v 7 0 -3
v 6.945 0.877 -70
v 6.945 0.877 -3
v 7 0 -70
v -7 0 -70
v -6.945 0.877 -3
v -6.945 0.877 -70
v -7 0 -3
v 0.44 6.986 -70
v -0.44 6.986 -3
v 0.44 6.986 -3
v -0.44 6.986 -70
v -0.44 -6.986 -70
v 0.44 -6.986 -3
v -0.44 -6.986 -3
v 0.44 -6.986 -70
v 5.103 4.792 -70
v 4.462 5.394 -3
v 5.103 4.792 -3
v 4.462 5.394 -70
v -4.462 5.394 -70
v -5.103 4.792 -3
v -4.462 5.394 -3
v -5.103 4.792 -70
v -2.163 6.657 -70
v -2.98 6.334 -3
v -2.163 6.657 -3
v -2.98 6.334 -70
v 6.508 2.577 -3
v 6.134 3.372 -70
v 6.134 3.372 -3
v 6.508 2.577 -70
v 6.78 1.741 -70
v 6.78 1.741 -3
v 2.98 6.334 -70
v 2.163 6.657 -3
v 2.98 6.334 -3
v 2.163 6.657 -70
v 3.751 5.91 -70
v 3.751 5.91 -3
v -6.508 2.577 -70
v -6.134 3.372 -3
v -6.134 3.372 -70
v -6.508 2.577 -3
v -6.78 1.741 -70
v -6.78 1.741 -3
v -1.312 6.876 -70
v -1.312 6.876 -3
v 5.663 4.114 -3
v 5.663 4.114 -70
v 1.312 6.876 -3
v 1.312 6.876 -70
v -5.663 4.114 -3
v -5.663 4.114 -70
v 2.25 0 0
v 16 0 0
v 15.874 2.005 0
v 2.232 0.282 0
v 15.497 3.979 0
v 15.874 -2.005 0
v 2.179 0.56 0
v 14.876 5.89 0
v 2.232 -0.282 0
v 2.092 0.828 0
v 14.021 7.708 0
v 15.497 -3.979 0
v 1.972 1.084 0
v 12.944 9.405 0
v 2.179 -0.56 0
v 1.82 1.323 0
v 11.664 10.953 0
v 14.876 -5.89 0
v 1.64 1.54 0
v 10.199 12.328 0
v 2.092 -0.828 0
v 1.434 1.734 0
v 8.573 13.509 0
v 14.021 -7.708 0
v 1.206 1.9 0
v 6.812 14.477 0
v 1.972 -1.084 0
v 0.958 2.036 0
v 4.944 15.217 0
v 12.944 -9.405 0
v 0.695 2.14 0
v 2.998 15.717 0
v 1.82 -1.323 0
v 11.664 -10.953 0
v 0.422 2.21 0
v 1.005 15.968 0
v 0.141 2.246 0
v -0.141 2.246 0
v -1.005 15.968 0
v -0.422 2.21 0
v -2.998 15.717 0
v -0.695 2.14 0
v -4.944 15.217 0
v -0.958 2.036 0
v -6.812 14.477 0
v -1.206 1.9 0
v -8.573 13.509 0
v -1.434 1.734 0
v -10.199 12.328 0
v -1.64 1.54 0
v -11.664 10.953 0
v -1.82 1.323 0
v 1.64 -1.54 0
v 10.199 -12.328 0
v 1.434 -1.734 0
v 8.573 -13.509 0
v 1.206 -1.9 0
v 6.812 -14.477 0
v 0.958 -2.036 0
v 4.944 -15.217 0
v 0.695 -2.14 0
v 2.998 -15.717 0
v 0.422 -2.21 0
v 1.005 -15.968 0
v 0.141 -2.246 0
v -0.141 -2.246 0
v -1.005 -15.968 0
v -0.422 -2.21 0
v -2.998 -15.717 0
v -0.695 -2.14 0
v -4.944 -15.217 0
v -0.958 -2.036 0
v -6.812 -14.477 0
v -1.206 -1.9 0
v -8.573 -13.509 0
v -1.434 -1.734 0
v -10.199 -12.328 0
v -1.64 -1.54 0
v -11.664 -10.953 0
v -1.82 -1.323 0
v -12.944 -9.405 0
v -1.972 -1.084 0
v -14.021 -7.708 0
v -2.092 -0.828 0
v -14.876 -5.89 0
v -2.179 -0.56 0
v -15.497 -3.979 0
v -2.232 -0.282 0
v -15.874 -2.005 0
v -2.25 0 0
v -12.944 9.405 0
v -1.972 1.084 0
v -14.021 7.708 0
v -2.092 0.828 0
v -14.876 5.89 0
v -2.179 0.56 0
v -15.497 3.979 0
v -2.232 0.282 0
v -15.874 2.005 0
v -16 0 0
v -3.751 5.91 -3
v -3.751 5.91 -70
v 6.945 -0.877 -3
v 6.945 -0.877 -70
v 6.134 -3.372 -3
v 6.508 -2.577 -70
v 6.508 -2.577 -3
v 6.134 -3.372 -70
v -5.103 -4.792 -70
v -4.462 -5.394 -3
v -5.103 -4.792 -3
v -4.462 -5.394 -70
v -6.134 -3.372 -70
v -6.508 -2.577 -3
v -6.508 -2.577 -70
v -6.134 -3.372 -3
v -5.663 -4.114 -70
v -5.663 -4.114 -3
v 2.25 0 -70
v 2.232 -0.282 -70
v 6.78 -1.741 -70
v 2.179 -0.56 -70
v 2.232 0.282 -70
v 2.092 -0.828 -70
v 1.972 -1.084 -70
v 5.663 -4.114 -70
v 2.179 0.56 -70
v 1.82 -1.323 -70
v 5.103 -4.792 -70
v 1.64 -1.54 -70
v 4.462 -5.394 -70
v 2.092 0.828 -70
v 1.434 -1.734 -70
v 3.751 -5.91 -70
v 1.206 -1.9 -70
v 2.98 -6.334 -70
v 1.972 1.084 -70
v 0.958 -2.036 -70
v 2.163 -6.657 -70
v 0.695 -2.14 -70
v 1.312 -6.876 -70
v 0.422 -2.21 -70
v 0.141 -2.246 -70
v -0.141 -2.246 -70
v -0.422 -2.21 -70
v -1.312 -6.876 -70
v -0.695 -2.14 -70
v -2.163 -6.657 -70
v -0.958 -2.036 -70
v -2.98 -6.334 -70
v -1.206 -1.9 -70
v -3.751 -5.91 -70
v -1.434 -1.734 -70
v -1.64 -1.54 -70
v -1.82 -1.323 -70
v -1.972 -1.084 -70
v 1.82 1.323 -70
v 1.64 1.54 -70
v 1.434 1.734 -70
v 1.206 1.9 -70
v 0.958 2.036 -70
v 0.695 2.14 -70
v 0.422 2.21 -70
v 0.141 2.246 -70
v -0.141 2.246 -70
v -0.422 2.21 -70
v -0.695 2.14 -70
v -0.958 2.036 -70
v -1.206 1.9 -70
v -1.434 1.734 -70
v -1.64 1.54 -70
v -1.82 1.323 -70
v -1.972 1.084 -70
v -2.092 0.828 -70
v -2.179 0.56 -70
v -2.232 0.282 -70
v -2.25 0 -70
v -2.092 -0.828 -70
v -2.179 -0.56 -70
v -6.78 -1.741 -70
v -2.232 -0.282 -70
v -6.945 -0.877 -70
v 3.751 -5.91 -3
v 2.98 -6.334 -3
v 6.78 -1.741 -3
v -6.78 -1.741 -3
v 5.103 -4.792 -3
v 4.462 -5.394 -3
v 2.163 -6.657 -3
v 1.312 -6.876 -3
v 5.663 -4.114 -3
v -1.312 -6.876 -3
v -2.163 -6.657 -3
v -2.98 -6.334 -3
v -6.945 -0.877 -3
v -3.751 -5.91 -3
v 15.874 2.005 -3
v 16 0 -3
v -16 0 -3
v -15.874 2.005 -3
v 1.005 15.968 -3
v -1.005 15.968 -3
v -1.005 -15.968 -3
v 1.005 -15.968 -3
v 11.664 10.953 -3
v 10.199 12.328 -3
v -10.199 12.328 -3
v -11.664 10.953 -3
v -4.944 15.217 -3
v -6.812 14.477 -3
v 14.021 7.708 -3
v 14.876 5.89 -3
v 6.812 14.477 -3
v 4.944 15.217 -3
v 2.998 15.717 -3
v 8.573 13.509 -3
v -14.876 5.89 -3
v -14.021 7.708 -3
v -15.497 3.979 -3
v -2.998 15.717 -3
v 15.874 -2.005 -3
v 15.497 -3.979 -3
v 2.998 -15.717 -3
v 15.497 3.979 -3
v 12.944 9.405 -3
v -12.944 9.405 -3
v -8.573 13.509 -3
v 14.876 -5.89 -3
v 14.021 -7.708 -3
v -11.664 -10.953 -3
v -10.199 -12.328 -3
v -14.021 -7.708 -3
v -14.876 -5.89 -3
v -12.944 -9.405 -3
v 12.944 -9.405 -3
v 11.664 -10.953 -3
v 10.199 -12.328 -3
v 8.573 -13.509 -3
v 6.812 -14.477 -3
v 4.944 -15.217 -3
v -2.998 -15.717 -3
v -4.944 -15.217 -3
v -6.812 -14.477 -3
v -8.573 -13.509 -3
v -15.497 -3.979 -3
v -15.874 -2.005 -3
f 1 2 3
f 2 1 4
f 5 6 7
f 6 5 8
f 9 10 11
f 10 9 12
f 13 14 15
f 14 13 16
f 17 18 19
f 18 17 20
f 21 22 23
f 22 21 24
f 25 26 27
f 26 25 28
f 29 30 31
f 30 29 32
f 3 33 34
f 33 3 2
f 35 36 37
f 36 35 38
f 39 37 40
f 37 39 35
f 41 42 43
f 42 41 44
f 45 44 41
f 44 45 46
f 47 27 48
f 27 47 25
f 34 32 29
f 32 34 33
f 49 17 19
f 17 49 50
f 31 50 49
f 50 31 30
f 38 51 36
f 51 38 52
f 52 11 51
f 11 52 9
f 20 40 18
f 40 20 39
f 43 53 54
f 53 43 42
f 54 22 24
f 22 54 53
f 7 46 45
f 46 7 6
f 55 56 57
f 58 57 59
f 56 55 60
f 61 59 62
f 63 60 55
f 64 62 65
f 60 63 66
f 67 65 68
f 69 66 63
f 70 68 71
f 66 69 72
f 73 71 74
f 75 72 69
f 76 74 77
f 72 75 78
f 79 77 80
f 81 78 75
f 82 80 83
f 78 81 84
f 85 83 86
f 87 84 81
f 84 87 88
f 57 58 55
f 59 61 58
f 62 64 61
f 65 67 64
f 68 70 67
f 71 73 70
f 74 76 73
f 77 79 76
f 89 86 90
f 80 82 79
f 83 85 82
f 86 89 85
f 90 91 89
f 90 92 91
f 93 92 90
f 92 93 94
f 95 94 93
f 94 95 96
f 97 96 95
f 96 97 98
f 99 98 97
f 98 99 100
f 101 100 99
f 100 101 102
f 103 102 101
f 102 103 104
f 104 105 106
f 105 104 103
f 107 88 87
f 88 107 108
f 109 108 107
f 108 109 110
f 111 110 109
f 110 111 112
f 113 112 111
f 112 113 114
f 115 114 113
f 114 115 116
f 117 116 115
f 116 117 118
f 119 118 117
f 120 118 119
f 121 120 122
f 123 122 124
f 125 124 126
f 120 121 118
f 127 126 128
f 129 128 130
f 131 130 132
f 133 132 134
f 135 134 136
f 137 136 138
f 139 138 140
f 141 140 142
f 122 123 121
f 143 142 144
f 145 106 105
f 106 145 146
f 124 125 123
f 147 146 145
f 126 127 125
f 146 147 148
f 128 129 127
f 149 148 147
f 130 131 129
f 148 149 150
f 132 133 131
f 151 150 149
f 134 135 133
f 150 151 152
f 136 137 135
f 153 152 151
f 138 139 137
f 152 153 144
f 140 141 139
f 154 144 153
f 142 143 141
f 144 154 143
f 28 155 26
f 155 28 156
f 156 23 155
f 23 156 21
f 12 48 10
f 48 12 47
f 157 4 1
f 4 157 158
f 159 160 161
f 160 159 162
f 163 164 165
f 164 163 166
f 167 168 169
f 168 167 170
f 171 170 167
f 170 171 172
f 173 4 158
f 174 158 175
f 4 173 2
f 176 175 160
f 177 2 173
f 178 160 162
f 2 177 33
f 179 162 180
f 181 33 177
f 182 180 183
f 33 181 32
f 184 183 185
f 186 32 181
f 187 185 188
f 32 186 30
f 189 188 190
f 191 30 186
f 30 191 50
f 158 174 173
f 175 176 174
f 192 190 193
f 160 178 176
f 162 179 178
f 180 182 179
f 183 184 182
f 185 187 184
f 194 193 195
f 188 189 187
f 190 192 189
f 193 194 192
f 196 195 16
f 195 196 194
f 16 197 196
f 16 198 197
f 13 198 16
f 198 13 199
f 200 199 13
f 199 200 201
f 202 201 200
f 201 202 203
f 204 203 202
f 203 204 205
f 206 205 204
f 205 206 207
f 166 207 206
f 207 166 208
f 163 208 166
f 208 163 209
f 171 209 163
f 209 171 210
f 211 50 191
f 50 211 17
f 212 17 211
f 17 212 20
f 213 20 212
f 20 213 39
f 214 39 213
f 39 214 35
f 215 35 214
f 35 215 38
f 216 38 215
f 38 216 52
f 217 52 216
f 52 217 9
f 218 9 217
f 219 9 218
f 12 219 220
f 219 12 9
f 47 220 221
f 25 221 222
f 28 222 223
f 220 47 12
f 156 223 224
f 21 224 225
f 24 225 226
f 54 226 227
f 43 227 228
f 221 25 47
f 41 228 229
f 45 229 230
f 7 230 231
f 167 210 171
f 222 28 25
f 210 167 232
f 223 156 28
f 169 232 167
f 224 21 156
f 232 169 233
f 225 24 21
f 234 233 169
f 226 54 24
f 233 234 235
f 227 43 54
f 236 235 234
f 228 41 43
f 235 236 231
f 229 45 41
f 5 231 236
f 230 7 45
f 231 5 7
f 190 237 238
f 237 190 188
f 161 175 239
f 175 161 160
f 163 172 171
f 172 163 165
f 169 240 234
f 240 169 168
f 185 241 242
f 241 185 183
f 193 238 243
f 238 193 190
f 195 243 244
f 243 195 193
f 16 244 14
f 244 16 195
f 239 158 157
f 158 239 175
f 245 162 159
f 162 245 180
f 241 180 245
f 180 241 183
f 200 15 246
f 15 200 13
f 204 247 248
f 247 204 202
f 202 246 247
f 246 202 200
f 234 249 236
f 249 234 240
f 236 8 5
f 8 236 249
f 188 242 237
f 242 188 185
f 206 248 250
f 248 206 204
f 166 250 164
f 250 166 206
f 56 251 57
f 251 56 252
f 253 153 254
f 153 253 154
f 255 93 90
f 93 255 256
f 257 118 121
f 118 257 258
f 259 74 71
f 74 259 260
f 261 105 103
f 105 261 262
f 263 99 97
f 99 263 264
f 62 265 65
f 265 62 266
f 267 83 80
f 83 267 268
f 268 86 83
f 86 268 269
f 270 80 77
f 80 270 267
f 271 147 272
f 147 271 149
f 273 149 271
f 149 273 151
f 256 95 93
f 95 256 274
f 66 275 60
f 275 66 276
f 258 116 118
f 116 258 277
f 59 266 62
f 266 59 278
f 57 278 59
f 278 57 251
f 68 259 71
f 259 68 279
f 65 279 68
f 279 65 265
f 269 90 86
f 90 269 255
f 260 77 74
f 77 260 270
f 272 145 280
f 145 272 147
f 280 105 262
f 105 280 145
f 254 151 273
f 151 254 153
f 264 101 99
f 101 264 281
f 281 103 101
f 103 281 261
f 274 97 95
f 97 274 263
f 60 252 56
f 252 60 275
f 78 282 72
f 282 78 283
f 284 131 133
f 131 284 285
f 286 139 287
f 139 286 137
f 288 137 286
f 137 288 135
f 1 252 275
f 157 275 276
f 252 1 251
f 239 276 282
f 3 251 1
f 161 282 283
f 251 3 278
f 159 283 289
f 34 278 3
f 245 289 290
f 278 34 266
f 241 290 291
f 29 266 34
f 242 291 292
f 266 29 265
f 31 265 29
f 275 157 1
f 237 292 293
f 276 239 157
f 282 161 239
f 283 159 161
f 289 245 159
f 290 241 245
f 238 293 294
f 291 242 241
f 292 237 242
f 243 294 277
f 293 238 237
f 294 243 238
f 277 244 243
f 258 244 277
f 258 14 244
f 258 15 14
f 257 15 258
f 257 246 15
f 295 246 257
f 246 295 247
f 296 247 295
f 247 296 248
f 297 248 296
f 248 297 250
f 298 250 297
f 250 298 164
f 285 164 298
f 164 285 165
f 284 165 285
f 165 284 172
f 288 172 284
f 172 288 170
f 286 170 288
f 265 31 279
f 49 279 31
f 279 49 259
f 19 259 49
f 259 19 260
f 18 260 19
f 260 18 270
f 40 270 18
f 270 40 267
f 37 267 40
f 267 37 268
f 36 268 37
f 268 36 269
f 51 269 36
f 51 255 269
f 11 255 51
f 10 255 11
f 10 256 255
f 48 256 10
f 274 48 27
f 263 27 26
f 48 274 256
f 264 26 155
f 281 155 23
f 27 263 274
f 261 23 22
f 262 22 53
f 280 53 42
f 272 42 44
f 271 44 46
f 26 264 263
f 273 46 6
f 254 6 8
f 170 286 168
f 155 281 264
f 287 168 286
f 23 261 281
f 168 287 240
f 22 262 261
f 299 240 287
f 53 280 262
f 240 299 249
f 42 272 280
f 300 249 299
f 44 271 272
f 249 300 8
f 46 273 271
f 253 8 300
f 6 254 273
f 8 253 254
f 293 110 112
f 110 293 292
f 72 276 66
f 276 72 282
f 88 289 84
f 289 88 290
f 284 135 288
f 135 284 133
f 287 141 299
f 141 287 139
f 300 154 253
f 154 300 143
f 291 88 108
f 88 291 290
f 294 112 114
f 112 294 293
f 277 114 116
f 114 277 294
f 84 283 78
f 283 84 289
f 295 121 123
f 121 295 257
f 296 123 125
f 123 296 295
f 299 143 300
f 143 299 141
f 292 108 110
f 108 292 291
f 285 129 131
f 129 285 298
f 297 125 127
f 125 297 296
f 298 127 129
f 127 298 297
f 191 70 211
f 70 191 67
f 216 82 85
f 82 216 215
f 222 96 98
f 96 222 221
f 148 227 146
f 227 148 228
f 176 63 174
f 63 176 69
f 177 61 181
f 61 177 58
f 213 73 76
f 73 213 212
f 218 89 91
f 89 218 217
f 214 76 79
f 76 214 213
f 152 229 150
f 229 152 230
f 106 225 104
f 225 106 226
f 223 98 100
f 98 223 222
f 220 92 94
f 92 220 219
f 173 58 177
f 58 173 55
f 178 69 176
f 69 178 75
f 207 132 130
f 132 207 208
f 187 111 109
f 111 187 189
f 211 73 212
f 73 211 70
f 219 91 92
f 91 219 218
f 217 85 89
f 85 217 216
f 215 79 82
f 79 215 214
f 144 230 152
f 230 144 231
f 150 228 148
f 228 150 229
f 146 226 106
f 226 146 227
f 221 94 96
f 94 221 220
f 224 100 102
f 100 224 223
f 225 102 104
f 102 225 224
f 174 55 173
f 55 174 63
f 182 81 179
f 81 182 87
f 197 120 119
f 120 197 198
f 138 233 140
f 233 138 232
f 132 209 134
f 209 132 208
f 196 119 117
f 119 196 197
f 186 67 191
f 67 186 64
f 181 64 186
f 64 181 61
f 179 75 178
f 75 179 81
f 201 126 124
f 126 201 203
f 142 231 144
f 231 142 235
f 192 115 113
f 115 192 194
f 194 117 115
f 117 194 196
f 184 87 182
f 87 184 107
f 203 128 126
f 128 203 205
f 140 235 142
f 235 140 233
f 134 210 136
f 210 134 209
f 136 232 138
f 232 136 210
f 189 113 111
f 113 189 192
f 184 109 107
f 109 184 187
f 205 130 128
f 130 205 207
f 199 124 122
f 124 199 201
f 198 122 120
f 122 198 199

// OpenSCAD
$fn = 50;


difference() {
	union() {
		translate(v = [0, 0, -70.0000000000]) {
			cylinder(h = 70, r = 7.0000000000);
		}
		translate(v = [0, 0, -3.0000000000]) {
			cylinder(h = 3, r = 16.0000000000);
		}
	}
	union() {
		#translate(v = [0, 0, -70]) {
			cylinder(h = 70, r = 2.2500000000);
		}
	}
}
